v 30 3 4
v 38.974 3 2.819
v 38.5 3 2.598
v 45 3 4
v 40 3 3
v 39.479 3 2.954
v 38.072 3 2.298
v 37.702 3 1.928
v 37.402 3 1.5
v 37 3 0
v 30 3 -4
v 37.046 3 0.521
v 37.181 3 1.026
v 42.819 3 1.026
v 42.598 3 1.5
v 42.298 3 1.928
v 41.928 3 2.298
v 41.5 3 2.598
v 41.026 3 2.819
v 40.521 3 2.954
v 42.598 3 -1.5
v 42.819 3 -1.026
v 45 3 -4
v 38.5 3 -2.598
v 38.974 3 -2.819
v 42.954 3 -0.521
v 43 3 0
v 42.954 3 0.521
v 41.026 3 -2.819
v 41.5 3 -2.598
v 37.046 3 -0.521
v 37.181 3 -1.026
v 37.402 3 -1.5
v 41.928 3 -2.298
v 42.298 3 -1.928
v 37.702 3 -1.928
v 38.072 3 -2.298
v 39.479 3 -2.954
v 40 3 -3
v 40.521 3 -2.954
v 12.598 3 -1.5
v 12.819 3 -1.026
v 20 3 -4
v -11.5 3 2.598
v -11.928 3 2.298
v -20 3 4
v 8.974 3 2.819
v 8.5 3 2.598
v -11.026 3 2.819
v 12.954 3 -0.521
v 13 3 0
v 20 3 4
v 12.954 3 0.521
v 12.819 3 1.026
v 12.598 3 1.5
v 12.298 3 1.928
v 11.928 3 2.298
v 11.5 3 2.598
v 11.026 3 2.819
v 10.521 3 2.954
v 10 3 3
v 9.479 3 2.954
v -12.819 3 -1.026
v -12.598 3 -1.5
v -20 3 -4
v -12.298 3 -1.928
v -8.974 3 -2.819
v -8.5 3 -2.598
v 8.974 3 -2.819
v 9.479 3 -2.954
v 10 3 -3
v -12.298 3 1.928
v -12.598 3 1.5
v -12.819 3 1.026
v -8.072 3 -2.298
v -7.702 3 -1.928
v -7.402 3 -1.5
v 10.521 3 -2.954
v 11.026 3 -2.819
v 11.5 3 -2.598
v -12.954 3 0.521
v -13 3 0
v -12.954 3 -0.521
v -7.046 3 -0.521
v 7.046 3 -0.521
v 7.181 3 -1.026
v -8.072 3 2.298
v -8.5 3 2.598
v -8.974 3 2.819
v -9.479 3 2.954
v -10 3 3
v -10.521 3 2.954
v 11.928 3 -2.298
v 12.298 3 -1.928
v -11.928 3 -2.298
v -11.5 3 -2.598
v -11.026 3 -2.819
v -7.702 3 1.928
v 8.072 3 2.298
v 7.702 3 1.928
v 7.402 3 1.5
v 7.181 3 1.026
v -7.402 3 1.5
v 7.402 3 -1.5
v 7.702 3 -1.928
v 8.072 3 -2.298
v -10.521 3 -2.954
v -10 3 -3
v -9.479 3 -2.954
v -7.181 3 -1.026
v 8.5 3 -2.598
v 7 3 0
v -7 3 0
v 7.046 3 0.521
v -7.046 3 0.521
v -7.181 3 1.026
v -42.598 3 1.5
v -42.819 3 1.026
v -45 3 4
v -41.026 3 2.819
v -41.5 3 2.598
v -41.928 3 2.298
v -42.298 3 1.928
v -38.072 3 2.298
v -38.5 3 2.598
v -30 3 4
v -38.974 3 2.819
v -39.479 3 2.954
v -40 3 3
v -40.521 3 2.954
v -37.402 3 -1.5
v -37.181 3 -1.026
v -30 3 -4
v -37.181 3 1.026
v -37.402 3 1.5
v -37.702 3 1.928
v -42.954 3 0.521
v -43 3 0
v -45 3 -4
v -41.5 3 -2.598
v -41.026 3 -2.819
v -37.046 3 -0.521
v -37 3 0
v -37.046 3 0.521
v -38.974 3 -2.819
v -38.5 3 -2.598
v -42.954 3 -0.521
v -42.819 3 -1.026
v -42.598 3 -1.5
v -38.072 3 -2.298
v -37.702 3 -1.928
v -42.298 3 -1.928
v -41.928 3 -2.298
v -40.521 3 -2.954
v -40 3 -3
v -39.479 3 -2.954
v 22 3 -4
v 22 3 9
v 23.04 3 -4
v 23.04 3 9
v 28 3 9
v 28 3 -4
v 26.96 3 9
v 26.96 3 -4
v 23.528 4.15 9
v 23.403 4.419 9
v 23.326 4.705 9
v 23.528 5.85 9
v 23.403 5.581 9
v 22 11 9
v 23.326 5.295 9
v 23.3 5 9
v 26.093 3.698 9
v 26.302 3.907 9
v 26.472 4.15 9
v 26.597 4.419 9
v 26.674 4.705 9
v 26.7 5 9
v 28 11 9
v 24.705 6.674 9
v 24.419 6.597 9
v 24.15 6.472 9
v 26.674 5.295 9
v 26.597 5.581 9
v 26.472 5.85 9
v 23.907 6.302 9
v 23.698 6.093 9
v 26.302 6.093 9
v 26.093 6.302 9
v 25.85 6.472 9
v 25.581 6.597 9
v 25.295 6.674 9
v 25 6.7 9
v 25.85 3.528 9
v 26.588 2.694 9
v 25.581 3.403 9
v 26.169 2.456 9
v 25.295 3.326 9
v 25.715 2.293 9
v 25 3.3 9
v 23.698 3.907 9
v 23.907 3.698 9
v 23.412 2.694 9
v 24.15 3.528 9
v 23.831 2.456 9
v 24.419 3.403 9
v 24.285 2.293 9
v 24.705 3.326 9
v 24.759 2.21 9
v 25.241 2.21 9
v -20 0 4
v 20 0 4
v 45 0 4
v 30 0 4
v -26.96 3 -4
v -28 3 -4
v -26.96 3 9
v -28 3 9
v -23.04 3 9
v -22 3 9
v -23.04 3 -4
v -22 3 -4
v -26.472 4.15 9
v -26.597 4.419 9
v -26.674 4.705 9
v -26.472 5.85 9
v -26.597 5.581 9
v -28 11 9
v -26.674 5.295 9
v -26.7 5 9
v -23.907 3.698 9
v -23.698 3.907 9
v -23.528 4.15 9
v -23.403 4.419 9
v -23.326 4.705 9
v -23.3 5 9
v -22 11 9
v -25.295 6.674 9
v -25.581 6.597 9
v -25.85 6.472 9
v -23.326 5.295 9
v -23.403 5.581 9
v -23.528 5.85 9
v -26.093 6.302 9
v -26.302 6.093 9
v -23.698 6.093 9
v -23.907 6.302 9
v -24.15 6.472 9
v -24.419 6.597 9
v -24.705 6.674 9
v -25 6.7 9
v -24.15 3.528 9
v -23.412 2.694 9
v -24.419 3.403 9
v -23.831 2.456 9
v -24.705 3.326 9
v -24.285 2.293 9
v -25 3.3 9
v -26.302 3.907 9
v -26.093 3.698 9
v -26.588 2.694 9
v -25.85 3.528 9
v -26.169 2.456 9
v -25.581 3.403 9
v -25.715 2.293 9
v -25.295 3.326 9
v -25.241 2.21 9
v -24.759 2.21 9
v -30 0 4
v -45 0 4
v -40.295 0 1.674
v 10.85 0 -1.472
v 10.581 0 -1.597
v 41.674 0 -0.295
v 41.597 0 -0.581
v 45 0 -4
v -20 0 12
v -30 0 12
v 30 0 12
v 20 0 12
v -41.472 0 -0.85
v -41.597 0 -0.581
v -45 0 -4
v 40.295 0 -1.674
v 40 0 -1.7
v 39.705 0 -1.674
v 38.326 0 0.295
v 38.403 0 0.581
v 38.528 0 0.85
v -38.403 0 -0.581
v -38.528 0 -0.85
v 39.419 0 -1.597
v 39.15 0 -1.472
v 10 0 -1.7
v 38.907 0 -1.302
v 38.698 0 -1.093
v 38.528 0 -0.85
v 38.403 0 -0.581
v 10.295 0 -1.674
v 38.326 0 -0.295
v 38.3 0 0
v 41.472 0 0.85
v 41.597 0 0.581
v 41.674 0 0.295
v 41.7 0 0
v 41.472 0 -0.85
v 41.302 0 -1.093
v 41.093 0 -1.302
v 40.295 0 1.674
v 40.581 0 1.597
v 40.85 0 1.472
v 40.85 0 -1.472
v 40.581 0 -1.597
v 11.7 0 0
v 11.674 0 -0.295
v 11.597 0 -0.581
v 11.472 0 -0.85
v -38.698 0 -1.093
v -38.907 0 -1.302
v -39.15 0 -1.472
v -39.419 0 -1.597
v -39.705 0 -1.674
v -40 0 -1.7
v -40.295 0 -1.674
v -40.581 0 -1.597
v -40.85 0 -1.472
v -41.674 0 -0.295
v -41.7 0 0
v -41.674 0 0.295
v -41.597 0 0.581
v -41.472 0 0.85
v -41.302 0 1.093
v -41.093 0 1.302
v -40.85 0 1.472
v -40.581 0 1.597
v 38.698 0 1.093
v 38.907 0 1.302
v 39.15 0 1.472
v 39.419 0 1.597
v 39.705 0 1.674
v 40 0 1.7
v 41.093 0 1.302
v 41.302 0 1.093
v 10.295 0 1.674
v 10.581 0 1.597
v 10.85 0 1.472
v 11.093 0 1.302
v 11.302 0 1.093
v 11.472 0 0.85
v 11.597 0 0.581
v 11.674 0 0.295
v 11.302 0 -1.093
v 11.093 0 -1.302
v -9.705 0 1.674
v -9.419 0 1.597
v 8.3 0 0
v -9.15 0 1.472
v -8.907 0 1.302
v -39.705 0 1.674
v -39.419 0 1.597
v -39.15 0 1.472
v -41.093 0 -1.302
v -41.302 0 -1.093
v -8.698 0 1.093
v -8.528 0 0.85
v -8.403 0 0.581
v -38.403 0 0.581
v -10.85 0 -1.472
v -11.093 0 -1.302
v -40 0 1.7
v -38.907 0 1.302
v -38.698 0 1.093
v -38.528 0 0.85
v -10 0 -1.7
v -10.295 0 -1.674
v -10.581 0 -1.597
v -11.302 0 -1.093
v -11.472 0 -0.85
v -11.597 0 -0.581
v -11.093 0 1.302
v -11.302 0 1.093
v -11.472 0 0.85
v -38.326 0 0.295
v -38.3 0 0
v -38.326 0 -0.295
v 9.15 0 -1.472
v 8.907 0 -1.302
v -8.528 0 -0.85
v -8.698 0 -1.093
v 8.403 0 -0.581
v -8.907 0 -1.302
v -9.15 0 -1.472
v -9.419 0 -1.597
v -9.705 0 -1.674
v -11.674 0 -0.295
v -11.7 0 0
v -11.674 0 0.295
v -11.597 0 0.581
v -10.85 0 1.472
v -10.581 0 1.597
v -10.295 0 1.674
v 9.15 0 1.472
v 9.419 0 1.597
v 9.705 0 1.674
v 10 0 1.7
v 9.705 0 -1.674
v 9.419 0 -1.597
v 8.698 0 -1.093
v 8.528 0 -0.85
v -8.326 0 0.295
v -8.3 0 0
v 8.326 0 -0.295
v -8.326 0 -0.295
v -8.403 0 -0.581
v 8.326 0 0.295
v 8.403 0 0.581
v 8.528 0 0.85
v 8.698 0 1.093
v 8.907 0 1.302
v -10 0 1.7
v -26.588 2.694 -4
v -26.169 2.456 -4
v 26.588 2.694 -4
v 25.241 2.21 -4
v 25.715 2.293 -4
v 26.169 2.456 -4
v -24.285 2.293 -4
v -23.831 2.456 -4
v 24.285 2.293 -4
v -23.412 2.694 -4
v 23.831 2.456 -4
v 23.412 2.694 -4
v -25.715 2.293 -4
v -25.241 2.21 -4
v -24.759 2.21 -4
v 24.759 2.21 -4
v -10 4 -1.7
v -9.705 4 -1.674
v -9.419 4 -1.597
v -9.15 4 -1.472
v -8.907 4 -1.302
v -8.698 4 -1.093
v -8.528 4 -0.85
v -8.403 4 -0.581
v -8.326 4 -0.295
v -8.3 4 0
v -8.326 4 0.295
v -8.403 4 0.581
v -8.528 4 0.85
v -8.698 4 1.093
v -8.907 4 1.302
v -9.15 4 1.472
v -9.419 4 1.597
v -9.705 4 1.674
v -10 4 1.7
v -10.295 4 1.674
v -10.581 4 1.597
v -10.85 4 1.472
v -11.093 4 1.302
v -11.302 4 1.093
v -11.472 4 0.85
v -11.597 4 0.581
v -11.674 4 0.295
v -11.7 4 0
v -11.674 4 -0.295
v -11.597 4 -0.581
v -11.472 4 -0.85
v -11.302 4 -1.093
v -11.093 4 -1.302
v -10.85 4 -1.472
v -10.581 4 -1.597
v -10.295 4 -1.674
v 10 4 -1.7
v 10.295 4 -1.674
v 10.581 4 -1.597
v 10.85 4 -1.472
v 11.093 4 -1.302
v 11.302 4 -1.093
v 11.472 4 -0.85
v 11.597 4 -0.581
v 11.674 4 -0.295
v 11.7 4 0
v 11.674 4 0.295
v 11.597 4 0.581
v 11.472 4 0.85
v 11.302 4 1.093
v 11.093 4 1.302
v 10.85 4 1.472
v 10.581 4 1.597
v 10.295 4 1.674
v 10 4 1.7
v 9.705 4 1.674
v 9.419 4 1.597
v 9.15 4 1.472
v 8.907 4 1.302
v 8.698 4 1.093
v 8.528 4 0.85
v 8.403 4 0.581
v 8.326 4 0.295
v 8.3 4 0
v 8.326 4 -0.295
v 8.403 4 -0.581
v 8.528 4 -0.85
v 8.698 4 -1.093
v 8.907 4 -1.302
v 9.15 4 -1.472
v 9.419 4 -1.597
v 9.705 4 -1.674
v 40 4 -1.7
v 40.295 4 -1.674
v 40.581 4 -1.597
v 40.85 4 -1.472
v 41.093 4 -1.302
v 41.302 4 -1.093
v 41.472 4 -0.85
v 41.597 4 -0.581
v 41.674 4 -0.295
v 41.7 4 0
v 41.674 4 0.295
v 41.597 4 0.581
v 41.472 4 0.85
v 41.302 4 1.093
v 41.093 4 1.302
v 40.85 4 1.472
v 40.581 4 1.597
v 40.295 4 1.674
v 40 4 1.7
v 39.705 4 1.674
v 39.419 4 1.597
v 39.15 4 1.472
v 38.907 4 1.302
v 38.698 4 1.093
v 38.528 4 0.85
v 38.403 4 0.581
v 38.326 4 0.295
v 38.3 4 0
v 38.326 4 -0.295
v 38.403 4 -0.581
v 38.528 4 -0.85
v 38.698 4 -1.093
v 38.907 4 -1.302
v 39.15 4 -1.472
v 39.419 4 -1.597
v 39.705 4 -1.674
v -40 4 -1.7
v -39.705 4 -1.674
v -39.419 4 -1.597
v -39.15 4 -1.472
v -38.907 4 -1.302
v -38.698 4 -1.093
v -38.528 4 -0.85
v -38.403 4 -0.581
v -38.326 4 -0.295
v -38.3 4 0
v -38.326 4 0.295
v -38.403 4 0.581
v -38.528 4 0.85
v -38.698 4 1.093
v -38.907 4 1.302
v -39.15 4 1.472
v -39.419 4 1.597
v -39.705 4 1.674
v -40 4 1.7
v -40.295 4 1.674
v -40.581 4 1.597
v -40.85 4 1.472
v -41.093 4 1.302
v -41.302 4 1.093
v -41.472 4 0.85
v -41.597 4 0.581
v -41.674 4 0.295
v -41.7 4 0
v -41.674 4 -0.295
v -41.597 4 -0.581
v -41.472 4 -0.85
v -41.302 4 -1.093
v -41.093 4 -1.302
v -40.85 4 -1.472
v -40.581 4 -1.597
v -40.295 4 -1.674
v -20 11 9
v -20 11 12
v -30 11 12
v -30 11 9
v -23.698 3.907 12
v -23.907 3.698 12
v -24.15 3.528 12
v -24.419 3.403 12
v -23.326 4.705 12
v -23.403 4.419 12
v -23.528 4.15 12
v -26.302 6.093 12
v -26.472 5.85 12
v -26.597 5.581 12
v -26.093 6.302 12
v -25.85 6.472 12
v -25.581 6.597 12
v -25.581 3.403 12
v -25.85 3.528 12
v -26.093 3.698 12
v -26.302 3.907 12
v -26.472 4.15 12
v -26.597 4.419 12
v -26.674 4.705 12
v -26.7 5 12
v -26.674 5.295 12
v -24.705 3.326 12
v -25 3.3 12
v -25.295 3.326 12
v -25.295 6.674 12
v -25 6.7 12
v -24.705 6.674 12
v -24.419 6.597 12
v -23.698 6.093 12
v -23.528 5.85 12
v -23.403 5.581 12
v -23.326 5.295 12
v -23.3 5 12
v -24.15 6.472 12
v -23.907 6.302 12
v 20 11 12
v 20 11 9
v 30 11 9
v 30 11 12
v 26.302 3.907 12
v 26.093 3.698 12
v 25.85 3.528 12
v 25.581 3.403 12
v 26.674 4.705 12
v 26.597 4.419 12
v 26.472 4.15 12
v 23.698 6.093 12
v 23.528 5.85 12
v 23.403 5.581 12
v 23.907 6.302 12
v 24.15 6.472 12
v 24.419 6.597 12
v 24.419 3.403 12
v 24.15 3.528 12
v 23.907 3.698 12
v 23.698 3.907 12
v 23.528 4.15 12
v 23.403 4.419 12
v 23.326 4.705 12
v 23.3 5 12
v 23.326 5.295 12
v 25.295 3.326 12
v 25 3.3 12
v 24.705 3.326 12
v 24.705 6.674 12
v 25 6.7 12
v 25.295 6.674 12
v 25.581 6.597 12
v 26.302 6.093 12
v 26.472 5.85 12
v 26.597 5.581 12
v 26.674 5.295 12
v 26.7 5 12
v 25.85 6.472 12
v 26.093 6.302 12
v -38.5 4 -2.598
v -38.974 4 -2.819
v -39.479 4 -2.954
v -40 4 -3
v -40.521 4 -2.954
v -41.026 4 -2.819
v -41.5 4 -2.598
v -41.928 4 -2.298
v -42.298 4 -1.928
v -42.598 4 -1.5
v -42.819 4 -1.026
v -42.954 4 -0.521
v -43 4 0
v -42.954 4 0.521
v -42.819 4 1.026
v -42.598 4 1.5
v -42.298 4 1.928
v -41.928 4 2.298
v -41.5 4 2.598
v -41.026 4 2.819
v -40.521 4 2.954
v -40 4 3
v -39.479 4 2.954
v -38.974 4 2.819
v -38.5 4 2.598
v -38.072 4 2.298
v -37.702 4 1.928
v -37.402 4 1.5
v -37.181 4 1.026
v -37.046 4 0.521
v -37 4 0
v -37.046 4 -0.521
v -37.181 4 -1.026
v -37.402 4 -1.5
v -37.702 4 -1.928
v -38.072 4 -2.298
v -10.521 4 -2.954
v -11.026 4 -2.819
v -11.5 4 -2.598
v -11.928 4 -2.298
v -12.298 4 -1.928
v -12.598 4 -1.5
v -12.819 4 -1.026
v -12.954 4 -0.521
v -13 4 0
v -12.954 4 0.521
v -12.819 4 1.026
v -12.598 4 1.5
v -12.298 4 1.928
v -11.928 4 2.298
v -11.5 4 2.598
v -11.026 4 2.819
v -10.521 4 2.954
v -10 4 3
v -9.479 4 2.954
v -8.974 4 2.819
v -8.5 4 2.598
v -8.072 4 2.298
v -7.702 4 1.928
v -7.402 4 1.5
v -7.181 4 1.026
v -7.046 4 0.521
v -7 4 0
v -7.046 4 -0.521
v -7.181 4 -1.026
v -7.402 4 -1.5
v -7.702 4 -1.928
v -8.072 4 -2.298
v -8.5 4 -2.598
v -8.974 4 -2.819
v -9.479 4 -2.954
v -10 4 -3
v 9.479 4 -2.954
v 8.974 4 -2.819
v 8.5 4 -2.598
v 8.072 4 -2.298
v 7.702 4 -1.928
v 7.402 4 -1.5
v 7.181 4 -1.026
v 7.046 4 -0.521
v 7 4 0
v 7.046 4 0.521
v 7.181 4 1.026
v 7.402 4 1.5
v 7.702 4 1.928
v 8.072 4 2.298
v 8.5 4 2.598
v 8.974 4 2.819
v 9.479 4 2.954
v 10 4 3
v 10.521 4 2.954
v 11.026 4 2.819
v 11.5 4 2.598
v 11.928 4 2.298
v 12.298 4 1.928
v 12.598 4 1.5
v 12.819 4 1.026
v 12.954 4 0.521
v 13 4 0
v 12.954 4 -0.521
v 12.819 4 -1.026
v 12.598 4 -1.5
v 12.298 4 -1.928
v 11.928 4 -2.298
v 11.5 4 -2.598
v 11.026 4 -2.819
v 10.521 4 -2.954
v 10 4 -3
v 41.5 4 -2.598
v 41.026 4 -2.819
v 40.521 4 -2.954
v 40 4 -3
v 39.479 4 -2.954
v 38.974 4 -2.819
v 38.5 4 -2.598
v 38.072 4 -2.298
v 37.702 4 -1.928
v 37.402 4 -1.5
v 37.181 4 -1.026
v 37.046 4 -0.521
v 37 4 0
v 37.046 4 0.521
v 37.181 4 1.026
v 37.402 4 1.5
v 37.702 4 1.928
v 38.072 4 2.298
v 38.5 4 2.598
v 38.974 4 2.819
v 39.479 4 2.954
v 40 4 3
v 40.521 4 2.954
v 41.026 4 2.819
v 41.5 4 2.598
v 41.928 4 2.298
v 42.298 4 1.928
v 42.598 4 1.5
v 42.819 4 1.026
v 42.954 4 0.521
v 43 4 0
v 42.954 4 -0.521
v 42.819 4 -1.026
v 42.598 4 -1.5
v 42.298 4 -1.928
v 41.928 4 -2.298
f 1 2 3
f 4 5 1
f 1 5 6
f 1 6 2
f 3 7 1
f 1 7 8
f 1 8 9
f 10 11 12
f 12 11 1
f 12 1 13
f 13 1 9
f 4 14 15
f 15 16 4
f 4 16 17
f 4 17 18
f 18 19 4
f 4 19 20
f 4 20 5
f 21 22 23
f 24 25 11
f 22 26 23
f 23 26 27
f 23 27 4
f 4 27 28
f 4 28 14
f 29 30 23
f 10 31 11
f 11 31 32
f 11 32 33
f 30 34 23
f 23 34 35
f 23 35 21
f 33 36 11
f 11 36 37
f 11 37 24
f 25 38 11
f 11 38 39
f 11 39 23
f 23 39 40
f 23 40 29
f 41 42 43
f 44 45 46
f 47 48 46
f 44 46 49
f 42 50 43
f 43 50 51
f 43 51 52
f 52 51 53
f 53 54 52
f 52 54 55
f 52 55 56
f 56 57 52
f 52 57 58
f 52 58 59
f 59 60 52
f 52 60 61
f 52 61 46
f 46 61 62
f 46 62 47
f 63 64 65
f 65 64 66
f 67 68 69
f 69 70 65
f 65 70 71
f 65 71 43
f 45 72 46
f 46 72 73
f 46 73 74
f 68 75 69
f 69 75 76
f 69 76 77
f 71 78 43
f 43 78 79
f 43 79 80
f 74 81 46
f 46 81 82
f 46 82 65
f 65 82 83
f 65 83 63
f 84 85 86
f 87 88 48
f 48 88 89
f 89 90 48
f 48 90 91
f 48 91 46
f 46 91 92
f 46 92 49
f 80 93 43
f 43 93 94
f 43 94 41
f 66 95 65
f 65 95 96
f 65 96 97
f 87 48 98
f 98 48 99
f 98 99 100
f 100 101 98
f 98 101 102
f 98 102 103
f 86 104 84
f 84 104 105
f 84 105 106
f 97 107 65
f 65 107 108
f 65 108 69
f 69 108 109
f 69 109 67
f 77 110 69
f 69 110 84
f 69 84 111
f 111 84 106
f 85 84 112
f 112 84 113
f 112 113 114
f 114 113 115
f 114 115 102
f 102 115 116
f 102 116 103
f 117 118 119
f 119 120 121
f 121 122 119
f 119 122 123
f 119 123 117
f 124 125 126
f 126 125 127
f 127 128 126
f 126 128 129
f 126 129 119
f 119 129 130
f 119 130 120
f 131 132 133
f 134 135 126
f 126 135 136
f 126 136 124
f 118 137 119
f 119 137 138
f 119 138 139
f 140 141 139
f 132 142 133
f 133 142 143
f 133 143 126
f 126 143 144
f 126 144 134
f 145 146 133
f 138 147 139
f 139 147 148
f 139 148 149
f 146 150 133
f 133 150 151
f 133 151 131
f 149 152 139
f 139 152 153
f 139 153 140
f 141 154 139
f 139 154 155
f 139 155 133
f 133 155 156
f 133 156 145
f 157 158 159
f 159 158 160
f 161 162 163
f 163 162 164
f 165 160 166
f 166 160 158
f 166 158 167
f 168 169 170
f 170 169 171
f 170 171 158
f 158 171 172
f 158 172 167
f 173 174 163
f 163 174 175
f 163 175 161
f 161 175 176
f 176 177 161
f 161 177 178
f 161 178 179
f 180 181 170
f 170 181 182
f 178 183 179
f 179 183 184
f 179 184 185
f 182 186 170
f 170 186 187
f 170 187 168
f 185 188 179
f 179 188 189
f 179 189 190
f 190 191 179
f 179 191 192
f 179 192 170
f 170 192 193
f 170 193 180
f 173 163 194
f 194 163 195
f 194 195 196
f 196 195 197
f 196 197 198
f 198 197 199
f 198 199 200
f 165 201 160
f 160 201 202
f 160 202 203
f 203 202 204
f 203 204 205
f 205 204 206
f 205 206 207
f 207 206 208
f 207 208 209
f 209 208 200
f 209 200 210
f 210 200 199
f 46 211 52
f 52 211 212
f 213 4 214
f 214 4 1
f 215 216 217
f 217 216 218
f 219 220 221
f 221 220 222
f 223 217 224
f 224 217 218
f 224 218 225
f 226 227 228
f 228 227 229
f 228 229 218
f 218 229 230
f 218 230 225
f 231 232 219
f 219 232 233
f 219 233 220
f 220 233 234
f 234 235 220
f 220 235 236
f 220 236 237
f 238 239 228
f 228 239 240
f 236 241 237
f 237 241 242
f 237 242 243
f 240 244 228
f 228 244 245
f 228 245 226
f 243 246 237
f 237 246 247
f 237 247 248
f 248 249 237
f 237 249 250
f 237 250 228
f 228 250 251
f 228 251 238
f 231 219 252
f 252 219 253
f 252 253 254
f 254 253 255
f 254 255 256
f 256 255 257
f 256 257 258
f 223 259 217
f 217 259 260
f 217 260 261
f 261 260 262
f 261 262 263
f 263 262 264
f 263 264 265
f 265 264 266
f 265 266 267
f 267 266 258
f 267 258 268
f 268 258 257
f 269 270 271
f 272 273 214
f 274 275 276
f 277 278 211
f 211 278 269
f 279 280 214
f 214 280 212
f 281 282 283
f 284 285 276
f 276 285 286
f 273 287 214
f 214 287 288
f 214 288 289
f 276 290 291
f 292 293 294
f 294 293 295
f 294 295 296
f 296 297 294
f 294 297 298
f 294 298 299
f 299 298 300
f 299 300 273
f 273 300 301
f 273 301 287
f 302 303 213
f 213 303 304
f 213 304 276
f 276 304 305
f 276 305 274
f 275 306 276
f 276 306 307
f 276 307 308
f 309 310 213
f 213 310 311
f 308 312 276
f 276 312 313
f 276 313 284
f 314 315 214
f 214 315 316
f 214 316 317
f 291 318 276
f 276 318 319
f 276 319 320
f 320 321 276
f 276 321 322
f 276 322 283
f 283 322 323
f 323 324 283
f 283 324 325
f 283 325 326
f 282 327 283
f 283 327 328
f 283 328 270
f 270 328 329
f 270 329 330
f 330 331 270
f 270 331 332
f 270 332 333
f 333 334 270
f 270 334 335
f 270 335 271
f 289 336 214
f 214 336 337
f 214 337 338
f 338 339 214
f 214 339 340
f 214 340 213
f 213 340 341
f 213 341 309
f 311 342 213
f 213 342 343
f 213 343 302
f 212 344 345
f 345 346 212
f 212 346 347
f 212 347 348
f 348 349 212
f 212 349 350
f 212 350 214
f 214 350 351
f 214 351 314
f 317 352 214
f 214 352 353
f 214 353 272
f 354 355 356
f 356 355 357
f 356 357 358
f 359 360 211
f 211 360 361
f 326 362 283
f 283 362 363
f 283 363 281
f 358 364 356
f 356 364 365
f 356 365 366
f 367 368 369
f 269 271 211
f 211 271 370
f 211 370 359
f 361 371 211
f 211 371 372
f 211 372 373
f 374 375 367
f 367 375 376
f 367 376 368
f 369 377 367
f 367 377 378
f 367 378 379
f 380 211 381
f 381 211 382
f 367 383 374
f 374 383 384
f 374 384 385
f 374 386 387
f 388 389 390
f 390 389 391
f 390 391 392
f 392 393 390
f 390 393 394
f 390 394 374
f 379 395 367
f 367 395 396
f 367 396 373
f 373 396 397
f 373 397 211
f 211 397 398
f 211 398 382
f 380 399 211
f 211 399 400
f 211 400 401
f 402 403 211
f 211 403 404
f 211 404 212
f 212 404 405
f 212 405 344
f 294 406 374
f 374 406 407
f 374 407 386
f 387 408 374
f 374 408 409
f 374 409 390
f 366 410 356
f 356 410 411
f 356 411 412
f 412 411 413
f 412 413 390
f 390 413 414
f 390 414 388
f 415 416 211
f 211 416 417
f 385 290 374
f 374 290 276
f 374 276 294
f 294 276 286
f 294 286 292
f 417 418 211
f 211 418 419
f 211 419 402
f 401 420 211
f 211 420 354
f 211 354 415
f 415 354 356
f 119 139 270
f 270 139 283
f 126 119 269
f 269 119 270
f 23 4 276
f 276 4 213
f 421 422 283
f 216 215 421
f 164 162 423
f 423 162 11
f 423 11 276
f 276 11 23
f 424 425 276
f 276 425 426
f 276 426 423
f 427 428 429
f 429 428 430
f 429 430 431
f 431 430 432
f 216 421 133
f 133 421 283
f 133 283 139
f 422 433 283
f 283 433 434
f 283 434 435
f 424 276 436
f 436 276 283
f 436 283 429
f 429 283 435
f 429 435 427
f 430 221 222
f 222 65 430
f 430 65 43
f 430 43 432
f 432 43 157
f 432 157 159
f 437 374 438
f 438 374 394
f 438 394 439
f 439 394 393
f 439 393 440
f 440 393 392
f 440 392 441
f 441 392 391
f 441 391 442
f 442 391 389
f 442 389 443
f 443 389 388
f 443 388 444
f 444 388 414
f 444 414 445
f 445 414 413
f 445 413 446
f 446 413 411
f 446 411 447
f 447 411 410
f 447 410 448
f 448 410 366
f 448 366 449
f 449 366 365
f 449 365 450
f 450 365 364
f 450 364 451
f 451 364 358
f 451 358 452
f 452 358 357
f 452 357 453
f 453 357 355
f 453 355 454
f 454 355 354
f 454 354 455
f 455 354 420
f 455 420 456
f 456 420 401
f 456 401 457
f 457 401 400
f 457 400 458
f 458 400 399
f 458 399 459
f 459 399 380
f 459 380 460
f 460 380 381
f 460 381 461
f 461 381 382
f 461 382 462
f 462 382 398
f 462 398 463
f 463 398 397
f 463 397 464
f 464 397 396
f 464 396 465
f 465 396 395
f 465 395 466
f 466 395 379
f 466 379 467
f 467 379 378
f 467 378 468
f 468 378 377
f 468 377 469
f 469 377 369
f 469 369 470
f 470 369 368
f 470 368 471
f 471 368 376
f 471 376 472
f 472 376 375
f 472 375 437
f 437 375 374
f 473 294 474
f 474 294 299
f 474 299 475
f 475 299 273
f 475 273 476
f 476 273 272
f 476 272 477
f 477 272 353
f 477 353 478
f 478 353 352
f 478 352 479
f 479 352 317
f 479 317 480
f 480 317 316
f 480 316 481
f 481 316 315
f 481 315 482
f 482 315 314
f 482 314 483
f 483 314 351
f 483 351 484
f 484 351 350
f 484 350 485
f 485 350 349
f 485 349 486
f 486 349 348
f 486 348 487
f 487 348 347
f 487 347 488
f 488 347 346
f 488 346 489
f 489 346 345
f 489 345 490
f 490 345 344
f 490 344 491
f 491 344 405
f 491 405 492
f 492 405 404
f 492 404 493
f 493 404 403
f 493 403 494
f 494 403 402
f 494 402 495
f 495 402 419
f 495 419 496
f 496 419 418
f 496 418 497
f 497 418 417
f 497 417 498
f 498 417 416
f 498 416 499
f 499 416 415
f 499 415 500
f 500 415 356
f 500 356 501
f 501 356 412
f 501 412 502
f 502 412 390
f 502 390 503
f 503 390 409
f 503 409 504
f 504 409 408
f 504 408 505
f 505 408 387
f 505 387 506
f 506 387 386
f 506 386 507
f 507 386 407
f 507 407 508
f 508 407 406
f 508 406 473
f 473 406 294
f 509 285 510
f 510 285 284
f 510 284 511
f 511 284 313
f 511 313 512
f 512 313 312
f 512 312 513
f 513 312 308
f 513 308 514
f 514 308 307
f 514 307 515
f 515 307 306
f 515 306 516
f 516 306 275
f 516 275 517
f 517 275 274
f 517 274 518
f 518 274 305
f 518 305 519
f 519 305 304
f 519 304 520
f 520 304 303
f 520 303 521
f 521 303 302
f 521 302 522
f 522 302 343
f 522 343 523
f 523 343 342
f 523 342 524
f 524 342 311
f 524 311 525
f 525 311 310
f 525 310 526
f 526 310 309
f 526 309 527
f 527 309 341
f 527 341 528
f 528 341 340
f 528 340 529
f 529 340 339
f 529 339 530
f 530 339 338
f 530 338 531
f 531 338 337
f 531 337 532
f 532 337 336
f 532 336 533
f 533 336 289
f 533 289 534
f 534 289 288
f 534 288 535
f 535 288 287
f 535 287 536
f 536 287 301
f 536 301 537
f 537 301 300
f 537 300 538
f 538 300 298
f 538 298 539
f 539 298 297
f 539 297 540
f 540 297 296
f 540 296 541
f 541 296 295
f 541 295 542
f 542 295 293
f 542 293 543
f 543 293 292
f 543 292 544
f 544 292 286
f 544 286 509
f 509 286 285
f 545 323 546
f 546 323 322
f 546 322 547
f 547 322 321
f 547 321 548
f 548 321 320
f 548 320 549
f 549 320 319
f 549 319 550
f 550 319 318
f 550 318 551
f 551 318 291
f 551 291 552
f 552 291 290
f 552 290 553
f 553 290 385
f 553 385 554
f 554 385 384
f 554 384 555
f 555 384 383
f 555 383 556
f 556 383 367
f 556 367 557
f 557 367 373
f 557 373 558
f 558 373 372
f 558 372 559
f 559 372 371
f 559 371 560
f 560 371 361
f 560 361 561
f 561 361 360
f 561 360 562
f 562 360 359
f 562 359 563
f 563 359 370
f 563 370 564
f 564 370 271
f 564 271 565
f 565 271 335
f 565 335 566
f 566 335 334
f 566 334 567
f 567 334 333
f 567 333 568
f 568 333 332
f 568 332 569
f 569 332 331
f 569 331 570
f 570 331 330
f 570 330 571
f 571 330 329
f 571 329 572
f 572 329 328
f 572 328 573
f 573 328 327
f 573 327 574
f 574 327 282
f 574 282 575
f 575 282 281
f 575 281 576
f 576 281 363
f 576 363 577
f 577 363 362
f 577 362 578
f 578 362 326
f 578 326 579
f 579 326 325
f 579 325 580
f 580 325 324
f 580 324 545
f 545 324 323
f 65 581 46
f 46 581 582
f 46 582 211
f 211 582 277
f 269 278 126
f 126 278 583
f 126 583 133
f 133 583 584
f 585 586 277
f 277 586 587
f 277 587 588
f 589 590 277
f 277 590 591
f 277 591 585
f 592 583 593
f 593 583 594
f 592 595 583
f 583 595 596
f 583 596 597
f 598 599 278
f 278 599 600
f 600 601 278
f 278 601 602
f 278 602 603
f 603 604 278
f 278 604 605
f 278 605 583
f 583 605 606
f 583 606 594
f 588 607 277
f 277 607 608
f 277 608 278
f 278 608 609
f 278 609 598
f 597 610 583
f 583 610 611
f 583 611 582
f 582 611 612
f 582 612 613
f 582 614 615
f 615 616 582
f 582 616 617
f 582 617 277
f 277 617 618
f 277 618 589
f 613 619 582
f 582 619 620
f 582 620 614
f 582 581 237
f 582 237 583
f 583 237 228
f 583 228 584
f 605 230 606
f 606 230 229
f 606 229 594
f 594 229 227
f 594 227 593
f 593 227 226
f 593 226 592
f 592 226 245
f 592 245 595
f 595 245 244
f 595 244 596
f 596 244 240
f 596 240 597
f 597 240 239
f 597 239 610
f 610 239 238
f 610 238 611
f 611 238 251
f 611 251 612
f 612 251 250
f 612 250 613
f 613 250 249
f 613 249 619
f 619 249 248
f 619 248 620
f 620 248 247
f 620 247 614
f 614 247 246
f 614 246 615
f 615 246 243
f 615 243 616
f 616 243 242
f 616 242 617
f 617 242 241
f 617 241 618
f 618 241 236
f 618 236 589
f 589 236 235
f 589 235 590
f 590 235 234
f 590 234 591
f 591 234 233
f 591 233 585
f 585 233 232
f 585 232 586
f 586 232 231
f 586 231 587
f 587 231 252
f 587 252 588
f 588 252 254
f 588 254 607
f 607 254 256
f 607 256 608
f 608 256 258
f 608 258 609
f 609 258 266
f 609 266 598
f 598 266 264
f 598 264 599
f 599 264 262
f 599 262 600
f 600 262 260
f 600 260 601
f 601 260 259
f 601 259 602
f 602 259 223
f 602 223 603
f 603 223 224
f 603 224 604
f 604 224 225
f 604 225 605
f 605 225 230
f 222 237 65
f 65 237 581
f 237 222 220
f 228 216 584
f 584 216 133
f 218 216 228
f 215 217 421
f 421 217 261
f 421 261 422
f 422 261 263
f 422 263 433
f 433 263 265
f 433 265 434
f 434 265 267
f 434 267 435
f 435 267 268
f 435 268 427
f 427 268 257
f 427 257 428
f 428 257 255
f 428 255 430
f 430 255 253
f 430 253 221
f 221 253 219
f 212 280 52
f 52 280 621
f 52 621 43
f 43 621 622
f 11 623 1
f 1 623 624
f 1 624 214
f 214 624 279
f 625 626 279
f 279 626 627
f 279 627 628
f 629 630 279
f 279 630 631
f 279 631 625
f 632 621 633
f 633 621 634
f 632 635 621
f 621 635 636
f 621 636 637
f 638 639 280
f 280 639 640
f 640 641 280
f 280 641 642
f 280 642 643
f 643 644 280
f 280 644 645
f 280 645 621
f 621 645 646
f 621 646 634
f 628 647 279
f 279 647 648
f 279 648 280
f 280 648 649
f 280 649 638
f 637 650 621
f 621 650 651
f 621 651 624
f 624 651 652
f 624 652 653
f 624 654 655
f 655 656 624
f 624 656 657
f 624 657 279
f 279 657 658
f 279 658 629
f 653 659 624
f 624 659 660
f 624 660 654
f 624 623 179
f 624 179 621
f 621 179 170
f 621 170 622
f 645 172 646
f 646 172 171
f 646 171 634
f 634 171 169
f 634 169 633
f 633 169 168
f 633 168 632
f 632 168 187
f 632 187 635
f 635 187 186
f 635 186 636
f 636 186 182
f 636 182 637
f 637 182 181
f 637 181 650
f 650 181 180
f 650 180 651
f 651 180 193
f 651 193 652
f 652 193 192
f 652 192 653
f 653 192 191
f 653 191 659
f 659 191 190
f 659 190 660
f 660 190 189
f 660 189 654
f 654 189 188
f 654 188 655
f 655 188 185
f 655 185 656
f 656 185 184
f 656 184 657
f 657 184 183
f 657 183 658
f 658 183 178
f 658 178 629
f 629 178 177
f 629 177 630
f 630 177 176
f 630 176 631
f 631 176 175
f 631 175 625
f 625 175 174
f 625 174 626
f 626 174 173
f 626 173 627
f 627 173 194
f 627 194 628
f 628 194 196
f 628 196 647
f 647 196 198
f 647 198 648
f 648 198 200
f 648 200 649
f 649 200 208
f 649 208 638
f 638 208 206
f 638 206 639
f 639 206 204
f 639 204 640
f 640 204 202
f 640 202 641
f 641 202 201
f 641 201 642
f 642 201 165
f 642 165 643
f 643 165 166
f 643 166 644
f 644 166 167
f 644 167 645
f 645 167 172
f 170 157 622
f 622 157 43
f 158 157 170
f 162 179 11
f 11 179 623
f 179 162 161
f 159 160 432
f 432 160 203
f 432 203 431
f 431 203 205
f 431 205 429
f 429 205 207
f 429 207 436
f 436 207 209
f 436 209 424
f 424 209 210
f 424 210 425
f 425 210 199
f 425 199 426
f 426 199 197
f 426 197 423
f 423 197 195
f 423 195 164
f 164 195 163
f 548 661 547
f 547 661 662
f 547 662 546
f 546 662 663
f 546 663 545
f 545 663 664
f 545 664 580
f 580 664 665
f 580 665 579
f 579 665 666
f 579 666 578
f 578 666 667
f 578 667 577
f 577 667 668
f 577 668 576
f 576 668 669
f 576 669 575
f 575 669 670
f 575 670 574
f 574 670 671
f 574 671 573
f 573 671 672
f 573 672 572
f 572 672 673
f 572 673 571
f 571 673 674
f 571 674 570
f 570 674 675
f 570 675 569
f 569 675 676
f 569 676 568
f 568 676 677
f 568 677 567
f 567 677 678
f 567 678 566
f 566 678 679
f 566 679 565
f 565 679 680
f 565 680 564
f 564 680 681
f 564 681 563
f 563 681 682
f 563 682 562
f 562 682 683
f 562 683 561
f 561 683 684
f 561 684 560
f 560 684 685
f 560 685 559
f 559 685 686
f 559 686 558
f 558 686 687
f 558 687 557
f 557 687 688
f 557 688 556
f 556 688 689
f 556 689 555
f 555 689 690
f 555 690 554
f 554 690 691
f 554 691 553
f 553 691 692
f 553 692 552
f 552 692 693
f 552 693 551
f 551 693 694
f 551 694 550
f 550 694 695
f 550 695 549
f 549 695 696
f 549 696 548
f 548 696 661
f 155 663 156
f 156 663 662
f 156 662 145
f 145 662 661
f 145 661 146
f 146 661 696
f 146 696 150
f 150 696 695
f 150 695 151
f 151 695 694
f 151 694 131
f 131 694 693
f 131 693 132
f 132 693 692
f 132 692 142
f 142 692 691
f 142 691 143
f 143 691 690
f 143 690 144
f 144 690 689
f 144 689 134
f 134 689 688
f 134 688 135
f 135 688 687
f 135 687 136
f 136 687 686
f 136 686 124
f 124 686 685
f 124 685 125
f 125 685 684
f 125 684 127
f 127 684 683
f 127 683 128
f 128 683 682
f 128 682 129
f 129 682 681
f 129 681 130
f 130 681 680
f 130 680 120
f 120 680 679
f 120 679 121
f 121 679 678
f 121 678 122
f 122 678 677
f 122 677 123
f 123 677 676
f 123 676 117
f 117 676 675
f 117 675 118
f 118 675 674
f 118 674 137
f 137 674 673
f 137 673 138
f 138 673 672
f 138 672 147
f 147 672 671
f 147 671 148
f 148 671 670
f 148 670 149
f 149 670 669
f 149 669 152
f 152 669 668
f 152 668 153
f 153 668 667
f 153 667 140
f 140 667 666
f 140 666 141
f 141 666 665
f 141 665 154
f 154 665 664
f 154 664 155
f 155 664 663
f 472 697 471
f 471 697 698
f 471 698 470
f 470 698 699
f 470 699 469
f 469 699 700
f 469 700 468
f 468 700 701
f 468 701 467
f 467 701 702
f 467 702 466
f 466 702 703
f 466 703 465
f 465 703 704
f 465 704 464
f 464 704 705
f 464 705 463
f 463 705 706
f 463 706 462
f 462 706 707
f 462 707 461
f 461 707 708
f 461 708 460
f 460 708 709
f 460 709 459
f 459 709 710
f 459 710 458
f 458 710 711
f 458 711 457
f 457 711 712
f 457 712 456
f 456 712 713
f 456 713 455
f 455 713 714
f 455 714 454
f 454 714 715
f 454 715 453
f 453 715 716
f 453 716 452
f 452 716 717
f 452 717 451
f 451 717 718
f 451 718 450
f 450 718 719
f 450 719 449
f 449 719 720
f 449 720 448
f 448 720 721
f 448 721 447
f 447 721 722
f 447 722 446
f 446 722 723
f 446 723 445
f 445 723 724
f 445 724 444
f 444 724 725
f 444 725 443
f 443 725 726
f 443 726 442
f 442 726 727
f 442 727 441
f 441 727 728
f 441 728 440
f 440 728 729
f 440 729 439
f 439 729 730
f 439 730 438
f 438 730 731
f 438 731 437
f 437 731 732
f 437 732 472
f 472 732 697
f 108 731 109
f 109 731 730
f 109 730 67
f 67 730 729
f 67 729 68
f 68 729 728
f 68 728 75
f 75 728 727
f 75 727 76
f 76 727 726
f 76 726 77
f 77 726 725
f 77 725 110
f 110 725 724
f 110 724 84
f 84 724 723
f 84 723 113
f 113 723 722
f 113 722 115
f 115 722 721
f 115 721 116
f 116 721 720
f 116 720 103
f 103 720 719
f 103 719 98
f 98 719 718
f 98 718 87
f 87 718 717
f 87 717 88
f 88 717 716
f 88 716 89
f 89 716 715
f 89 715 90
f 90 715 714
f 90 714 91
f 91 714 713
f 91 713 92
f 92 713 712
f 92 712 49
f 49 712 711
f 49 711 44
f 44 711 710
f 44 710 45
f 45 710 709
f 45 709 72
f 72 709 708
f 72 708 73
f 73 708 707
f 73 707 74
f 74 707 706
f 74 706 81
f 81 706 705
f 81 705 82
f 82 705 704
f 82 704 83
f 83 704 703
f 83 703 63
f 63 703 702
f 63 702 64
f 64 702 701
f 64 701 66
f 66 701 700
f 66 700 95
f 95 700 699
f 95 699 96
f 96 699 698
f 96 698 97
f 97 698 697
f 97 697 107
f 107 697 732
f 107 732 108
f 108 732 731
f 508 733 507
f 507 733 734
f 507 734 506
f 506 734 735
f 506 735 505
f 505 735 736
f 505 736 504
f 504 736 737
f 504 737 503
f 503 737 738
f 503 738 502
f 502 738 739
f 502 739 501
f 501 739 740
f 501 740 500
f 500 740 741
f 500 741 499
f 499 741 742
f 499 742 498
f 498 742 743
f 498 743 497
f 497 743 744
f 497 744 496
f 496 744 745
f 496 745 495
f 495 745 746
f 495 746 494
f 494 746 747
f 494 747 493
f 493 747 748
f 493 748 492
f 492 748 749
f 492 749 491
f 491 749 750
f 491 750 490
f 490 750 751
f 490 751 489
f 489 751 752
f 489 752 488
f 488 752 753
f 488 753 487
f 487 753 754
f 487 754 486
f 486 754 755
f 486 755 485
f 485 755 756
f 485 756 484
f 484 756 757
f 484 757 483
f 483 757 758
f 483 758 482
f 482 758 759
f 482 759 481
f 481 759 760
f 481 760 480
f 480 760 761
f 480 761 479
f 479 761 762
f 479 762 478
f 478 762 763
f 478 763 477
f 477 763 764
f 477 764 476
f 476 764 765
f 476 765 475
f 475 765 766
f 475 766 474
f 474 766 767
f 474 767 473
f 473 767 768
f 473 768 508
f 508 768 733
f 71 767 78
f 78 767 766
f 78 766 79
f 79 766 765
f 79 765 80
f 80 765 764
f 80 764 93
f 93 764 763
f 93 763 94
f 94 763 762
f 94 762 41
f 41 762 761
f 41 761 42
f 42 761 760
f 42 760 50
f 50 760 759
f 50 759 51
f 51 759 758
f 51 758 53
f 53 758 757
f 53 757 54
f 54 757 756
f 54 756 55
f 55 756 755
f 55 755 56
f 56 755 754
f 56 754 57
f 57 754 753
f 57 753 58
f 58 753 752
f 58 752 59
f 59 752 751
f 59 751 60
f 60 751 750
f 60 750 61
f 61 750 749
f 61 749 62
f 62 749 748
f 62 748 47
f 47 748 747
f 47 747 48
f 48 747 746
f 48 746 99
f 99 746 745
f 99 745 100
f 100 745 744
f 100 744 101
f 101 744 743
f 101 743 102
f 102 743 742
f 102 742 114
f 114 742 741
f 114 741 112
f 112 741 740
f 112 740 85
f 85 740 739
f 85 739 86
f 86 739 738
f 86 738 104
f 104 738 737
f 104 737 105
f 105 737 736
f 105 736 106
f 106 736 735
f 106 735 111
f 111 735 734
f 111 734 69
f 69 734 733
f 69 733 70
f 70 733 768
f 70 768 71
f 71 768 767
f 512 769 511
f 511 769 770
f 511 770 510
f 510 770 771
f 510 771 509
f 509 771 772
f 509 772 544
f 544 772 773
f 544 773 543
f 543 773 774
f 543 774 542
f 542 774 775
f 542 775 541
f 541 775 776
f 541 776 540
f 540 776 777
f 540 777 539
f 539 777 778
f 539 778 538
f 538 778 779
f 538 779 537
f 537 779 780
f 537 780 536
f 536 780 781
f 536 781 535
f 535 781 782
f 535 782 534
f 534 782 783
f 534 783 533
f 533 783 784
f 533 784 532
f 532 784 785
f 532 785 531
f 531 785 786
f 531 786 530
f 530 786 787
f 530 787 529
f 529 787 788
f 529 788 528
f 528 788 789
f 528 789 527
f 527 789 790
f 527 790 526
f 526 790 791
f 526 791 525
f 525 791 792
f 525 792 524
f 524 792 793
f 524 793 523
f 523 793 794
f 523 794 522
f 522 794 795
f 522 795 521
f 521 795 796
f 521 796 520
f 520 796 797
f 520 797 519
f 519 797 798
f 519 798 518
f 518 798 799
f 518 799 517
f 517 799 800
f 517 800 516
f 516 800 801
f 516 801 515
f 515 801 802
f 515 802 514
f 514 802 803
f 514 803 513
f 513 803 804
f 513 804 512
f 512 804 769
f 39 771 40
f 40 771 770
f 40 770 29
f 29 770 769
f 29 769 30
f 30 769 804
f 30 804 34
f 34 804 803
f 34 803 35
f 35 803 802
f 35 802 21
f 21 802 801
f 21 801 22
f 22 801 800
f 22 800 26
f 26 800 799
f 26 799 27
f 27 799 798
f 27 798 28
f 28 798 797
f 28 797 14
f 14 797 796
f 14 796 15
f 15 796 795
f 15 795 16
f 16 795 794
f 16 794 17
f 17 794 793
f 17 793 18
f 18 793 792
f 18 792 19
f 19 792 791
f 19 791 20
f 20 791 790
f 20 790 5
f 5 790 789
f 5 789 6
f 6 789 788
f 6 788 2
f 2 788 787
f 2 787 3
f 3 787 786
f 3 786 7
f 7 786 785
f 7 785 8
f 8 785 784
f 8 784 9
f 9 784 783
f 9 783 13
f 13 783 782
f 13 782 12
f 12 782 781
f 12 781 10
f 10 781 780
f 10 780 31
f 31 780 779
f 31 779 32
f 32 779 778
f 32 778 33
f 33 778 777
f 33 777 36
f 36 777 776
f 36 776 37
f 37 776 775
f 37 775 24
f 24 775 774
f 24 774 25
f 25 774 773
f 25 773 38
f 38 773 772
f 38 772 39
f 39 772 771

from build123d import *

# Parameters (mm, degrees)
SKETCH_1_W          = 90
SKETCH_1_H          = 8
SKETCH_1_R          = 1.7
EXTRUDE_1_DEPTH     = 3
SKETCH_2_W          = 10
SKETCH_2_H          = 3
EXTRUDE_2_DEPTH     = 8
SKETCH_3_W          = 10
SKETCH_3_H          = 3
EXTRUDE_3_DEPTH     = 8
SKETCH_4_R          = 1.7
CUT_EXTRUDE_1_DEPTH = 49.114446895
EXTRUDE_4_DEPTH     = 2
EXTRUDE_5_DEPTH     = 2
SKETCH_7_R          = 2.8
CUT_EXTRUDE_2_DEPTH = 49.114446895
SKETCH_8_R          = 3
SKETCH_8_R_2        = 1.7
EXTRUDE_6_DEPTH     = 1


with BuildPart() as part:
    # 草图1 → 凸台-拉伸1 (new body)
    with BuildSketch(Plane(origin=(0, 0, 0), x_dir=(1, 0, 0), z_dir=(0, 1, 0))):
        Rectangle(SKETCH_1_W, SKETCH_1_H)
        with Locations(Location((-10, 0, 0), (0, 0, 270))):
            Circle(SKETCH_1_R, mode=Mode.SUBTRACT)
        with Locations(Location((10, 0, 0), (0, 0, 270))):
            Circle(SKETCH_1_R, mode=Mode.SUBTRACT)
        with Locations(Location((40, 0, 0), (0, 0, 270))):
            Circle(SKETCH_1_R, mode=Mode.SUBTRACT)
        with Locations(Location((-40, 0, 0), (0, 0, 270))):
            Circle(SKETCH_1_R, mode=Mode.SUBTRACT)
    extrude(amount=EXTRUDE_1_DEPTH)

    # 草图2 → 凸台-拉伸2 (add)
    with BuildSketch(Plane(origin=(0, 0, 4), x_dir=(-1, 0, 0), z_dir=(0, 0, -1))):
        with Locations((25, 1.5)):
            Rectangle(SKETCH_2_W, SKETCH_2_H)
    extrude_2 = extrude(amount=-EXTRUDE_2_DEPTH)

    # 草图3 → 凸台-拉伸3 (add)
    with BuildSketch(Plane(origin=(0, 3, 0), x_dir=(1, 0, 0), z_dir=(0, 1, 0))):
        with Locations((-25, -10.5)):
            Rectangle(SKETCH_3_W, SKETCH_3_H)
    extrude_3 = extrude(amount=EXTRUDE_3_DEPTH)

    # 草图4 → 切除-拉伸1 (cut, through all)
    with BuildSketch(Plane(origin=(0, 0, 9), x_dir=(-1, 0, 0), z_dir=(0, 0, -1))):
        with Locations((25, 5)):
            Circle(SKETCH_4_R)
    cut_extrude_1 = extrude(amount=-CUT_EXTRUDE_1_DEPTH, mode=Mode.SUBTRACT)

    # 草图5 → 凸台-拉伸4 (add)
    with BuildSketch(Plane(origin=(-20, 0, 0), x_dir=(0, 0, -1), z_dir=(1, 0, 0))):
        Polygon((-9, 11), (4, 3), (-9, 3), align=None)
    extrude_4 = extrude(amount=-EXTRUDE_4_DEPTH)

    # 草图6 → 凸台-拉伸5 (add)
    with BuildSketch(Plane.ZY.offset(30)):
        Polygon((9, 11), (-4, 3), (9, 3), align=None)
    extrude_5 = extrude(amount=-EXTRUDE_5_DEPTH)

    # 草图7 → 切除-拉伸2 (cut, through all)
    with BuildSketch(Plane(origin=(0, 0, 9), x_dir=(-1, 0, 0), z_dir=(0, 0, -1))):
        with Locations((25, 5)):
            Circle(SKETCH_7_R)
    cut_extrude_2 = extrude(amount=CUT_EXTRUDE_2_DEPTH, mode=Mode.SUBTRACT)

    # 镜向1: 凸台-拉伸2, 凸台-拉伸3, 切除-拉伸1, 凸台-拉伸4, 凸台-拉伸5, 切除-拉伸2 across plane
    add(extrude_2.mirror(Plane(origin=(0, 0, 0), x_dir=(0, 0, 1), z_dir=(1, 0, 0))))
    add(extrude_3.mirror(Plane(origin=(0, 0, 0), x_dir=(0, 0, 1), z_dir=(1, 0, 0))))
    add(cut_extrude_1.mirror(Plane(origin=(0, 0, 0), x_dir=(0, 0, 1), z_dir=(1, 0, 0))), mode=Mode.SUBTRACT)
    add(extrude_4.mirror(Plane(origin=(0, 0, 0), x_dir=(0, 0, 1), z_dir=(1, 0, 0))))
    add(extrude_5.mirror(Plane(origin=(0, 0, 0), x_dir=(0, 0, 1), z_dir=(1, 0, 0))))
    add(cut_extrude_2.mirror(Plane(origin=(0, 0, 0), x_dir=(0, 0, 1), z_dir=(1, 0, 0))), mode=Mode.SUBTRACT)

    # 草图8 → 凸台-拉伸6 (add)
    # profile 1 of 4: a face of its own
    with BuildSketch(Plane(origin=(0, 3, 0), x_dir=(1, 0, 0), z_dir=(0, 1, 0))):
        with Locations(Location((-40, 0, 0), (0, 0, 270))):
            Circle(SKETCH_8_R)
        with Locations(Location((-40, 0, 0), (0, 0, 270))):
            Circle(SKETCH_8_R_2, mode=Mode.SUBTRACT)
    # profile 2 of 4: a face of its own
    with BuildSketch(Plane(origin=(0, 3, 0), x_dir=(1, 0, 0), z_dir=(0, 1, 0))):
        with Locations(Location((-10, 0, 0), (0, 0, 270))):
            Circle(SKETCH_8_R)
        with Locations(Location((-10, 0, 0), (0, 0, 270))):
            Circle(SKETCH_8_R_2, mode=Mode.SUBTRACT)
    # profile 3 of 4: a face of its own
    with BuildSketch(Plane(origin=(0, 3, 0), x_dir=(1, 0, 0), z_dir=(0, 1, 0))):
        with Locations(Location((10, 0, 0), (0, 0, 270))):
            Circle(SKETCH_8_R)
        with Locations(Location((10, 0, 0), (0, 0, 270))):
            Circle(SKETCH_8_R_2, mode=Mode.SUBTRACT)
    # profile 4 of 4: a face of its own
    with BuildSketch(Plane(origin=(0, 3, 0), x_dir=(1, 0, 0), z_dir=(0, 1, 0))):
        with Locations(Location((40, 0, 0), (0, 0, 270))):
            Circle(SKETCH_8_R)
        with Locations(Location((40, 0, 0), (0, 0, 270))):
            Circle(SKETCH_8_R_2, mode=Mode.SUBTRACT)
    extrude(amount=EXTRUDE_6_DEPTH)


solid = part.part
